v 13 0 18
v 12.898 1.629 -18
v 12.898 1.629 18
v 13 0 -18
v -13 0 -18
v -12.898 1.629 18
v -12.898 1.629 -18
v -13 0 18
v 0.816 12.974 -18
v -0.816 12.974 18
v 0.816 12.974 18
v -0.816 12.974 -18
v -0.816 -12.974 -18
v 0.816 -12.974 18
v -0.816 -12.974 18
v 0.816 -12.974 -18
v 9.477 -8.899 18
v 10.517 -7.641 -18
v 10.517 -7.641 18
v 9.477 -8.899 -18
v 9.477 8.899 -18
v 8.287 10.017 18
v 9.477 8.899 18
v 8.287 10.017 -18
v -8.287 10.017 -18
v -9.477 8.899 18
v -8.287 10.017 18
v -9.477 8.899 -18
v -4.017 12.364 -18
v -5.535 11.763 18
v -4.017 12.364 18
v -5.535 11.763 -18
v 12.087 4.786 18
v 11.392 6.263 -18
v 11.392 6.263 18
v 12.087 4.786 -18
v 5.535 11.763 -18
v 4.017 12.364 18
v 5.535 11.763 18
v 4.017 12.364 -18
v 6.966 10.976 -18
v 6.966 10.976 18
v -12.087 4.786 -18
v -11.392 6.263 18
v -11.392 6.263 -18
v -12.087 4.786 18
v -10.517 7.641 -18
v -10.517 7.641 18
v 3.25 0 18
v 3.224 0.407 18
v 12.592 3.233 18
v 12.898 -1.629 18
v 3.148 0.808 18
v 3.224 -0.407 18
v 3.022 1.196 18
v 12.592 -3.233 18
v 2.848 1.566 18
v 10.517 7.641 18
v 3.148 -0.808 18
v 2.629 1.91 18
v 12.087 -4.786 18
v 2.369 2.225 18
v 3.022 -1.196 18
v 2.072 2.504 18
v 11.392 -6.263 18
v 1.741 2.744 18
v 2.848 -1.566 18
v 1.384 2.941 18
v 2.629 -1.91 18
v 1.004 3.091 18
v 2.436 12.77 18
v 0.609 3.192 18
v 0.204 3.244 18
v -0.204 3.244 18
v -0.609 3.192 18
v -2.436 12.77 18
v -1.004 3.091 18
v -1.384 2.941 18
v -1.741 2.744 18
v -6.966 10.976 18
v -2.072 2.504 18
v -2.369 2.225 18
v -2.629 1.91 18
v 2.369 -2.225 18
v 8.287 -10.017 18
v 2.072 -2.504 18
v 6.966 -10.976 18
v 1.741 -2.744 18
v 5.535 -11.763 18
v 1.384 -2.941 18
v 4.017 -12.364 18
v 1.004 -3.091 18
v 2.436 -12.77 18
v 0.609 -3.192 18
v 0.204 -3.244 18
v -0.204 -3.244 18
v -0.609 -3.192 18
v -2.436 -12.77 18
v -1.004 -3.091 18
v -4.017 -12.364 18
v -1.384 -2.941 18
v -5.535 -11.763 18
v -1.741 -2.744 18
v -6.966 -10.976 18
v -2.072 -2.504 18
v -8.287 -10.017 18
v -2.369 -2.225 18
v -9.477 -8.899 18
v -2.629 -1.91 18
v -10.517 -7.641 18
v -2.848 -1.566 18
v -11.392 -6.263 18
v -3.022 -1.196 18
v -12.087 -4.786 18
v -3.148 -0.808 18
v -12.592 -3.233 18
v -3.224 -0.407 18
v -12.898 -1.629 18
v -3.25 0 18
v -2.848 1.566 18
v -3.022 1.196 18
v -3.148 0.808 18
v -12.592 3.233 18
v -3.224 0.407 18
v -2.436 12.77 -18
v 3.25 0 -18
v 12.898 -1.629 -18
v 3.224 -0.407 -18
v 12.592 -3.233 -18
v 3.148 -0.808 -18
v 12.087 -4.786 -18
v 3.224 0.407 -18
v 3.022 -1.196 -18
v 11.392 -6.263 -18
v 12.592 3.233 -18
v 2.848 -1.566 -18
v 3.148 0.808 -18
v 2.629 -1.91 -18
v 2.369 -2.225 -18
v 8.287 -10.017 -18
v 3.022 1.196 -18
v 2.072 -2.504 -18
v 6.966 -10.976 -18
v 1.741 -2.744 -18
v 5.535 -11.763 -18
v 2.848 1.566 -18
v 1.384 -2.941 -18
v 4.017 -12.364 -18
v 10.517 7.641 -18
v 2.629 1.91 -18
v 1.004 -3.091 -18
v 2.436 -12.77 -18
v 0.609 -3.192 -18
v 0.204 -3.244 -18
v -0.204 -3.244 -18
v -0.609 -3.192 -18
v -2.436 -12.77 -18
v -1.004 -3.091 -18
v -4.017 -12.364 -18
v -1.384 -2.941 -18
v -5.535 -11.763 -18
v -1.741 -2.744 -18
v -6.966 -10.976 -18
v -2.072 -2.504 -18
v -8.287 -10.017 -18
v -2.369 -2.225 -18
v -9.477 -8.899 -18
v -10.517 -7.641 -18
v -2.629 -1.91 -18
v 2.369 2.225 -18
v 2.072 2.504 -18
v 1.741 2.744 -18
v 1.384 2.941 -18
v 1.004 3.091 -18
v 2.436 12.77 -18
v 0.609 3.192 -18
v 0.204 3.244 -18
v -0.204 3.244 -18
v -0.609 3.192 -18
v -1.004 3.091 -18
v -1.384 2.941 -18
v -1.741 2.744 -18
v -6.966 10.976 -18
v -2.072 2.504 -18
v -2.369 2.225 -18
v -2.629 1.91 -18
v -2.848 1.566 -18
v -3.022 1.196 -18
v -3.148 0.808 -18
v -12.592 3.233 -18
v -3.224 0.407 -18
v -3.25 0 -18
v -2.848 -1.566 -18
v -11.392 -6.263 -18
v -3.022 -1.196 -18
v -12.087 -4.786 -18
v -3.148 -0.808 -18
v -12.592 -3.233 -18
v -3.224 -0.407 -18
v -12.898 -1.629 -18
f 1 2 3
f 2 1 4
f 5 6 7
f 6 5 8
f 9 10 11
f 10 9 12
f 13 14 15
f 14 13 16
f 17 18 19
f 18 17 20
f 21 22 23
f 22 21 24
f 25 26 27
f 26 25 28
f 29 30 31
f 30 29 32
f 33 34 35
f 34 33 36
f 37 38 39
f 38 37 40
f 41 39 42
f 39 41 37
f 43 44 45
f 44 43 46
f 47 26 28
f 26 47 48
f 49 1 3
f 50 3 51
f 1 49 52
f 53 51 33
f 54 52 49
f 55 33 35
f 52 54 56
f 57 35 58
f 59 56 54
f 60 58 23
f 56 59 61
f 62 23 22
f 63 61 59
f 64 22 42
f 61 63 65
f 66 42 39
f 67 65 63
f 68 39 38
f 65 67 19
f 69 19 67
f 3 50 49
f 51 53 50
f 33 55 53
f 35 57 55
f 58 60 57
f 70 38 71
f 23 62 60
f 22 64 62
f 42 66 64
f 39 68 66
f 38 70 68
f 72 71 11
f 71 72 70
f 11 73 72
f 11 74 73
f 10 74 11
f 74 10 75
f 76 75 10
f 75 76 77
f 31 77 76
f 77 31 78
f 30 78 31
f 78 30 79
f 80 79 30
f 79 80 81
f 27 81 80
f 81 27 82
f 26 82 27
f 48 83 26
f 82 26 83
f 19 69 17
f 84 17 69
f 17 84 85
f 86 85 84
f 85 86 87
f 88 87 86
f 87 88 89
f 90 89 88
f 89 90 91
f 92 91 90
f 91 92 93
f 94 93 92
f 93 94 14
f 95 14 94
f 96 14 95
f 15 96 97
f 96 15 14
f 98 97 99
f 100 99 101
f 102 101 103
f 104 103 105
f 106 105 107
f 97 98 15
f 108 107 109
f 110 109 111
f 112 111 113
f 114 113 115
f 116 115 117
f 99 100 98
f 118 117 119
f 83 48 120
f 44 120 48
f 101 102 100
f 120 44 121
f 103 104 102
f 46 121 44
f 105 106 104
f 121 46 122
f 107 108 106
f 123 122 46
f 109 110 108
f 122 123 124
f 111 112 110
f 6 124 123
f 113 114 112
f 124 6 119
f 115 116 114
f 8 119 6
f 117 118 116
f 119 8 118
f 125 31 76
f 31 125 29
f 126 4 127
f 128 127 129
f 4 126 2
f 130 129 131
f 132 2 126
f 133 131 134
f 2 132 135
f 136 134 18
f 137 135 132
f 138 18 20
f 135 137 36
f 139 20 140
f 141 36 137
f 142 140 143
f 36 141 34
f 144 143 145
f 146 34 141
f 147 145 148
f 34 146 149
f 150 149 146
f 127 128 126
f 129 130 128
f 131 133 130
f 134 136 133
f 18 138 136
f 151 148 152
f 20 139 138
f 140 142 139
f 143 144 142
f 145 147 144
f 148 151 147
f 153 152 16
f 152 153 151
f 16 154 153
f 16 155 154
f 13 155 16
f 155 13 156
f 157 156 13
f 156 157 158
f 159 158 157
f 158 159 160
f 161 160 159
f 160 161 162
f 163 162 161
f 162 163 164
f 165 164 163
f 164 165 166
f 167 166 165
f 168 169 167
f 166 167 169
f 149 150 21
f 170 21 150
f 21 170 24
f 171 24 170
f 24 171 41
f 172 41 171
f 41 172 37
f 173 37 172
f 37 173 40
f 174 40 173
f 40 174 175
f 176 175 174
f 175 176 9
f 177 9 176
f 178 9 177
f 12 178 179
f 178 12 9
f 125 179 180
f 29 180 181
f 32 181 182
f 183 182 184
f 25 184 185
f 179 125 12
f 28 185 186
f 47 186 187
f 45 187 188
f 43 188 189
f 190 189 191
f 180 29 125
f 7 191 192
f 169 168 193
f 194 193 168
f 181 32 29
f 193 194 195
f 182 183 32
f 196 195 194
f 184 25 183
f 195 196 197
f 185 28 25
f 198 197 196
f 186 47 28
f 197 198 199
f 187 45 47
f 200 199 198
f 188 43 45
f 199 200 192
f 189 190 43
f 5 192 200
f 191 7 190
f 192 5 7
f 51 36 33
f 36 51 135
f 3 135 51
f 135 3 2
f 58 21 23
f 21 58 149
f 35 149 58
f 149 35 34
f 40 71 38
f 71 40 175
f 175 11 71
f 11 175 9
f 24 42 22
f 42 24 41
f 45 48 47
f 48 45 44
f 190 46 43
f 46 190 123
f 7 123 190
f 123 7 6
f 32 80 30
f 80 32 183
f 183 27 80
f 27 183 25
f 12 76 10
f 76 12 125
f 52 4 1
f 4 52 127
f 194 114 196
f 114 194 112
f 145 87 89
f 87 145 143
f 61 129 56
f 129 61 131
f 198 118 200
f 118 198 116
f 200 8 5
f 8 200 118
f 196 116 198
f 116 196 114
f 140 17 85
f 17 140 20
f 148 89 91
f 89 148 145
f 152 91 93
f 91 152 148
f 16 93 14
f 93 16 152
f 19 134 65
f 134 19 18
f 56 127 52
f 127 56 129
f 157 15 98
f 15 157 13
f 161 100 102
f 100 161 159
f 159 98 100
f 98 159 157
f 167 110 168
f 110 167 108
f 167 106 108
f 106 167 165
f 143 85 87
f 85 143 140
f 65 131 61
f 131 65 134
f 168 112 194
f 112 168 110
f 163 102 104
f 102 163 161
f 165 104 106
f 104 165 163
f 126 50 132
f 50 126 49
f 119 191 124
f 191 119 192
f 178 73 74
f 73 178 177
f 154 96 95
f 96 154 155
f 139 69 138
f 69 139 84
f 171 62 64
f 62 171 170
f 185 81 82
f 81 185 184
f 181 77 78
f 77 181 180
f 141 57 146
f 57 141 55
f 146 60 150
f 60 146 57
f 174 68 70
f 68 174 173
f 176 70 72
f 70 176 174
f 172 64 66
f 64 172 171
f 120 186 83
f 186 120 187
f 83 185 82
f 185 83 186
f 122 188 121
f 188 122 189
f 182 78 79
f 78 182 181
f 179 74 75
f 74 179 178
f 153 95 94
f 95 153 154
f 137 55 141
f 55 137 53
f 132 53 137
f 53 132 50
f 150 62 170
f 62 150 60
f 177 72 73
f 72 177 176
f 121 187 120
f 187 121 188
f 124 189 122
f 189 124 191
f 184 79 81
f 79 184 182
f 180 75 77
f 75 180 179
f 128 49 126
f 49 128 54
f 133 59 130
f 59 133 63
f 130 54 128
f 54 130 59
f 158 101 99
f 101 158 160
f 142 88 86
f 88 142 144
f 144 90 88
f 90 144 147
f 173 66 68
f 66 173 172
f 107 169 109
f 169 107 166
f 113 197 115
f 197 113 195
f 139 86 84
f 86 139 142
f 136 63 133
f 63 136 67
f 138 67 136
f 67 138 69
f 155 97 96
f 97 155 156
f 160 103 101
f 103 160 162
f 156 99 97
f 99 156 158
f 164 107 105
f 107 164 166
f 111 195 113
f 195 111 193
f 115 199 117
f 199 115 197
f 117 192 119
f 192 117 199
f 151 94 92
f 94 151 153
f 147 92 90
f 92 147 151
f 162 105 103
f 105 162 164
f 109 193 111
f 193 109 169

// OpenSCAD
$fn = 50;


difference() {
	union() {
		translate(v = [0, 0, -18.0000000000]) {
			cylinder(h = 36, r = 13.0000000000);
		}
	}
	union() {
		translate(v = [0, 0, -100.0000000000]) {
			cylinder(h = 200, r = 3.2500000000);
		}
	}
}
